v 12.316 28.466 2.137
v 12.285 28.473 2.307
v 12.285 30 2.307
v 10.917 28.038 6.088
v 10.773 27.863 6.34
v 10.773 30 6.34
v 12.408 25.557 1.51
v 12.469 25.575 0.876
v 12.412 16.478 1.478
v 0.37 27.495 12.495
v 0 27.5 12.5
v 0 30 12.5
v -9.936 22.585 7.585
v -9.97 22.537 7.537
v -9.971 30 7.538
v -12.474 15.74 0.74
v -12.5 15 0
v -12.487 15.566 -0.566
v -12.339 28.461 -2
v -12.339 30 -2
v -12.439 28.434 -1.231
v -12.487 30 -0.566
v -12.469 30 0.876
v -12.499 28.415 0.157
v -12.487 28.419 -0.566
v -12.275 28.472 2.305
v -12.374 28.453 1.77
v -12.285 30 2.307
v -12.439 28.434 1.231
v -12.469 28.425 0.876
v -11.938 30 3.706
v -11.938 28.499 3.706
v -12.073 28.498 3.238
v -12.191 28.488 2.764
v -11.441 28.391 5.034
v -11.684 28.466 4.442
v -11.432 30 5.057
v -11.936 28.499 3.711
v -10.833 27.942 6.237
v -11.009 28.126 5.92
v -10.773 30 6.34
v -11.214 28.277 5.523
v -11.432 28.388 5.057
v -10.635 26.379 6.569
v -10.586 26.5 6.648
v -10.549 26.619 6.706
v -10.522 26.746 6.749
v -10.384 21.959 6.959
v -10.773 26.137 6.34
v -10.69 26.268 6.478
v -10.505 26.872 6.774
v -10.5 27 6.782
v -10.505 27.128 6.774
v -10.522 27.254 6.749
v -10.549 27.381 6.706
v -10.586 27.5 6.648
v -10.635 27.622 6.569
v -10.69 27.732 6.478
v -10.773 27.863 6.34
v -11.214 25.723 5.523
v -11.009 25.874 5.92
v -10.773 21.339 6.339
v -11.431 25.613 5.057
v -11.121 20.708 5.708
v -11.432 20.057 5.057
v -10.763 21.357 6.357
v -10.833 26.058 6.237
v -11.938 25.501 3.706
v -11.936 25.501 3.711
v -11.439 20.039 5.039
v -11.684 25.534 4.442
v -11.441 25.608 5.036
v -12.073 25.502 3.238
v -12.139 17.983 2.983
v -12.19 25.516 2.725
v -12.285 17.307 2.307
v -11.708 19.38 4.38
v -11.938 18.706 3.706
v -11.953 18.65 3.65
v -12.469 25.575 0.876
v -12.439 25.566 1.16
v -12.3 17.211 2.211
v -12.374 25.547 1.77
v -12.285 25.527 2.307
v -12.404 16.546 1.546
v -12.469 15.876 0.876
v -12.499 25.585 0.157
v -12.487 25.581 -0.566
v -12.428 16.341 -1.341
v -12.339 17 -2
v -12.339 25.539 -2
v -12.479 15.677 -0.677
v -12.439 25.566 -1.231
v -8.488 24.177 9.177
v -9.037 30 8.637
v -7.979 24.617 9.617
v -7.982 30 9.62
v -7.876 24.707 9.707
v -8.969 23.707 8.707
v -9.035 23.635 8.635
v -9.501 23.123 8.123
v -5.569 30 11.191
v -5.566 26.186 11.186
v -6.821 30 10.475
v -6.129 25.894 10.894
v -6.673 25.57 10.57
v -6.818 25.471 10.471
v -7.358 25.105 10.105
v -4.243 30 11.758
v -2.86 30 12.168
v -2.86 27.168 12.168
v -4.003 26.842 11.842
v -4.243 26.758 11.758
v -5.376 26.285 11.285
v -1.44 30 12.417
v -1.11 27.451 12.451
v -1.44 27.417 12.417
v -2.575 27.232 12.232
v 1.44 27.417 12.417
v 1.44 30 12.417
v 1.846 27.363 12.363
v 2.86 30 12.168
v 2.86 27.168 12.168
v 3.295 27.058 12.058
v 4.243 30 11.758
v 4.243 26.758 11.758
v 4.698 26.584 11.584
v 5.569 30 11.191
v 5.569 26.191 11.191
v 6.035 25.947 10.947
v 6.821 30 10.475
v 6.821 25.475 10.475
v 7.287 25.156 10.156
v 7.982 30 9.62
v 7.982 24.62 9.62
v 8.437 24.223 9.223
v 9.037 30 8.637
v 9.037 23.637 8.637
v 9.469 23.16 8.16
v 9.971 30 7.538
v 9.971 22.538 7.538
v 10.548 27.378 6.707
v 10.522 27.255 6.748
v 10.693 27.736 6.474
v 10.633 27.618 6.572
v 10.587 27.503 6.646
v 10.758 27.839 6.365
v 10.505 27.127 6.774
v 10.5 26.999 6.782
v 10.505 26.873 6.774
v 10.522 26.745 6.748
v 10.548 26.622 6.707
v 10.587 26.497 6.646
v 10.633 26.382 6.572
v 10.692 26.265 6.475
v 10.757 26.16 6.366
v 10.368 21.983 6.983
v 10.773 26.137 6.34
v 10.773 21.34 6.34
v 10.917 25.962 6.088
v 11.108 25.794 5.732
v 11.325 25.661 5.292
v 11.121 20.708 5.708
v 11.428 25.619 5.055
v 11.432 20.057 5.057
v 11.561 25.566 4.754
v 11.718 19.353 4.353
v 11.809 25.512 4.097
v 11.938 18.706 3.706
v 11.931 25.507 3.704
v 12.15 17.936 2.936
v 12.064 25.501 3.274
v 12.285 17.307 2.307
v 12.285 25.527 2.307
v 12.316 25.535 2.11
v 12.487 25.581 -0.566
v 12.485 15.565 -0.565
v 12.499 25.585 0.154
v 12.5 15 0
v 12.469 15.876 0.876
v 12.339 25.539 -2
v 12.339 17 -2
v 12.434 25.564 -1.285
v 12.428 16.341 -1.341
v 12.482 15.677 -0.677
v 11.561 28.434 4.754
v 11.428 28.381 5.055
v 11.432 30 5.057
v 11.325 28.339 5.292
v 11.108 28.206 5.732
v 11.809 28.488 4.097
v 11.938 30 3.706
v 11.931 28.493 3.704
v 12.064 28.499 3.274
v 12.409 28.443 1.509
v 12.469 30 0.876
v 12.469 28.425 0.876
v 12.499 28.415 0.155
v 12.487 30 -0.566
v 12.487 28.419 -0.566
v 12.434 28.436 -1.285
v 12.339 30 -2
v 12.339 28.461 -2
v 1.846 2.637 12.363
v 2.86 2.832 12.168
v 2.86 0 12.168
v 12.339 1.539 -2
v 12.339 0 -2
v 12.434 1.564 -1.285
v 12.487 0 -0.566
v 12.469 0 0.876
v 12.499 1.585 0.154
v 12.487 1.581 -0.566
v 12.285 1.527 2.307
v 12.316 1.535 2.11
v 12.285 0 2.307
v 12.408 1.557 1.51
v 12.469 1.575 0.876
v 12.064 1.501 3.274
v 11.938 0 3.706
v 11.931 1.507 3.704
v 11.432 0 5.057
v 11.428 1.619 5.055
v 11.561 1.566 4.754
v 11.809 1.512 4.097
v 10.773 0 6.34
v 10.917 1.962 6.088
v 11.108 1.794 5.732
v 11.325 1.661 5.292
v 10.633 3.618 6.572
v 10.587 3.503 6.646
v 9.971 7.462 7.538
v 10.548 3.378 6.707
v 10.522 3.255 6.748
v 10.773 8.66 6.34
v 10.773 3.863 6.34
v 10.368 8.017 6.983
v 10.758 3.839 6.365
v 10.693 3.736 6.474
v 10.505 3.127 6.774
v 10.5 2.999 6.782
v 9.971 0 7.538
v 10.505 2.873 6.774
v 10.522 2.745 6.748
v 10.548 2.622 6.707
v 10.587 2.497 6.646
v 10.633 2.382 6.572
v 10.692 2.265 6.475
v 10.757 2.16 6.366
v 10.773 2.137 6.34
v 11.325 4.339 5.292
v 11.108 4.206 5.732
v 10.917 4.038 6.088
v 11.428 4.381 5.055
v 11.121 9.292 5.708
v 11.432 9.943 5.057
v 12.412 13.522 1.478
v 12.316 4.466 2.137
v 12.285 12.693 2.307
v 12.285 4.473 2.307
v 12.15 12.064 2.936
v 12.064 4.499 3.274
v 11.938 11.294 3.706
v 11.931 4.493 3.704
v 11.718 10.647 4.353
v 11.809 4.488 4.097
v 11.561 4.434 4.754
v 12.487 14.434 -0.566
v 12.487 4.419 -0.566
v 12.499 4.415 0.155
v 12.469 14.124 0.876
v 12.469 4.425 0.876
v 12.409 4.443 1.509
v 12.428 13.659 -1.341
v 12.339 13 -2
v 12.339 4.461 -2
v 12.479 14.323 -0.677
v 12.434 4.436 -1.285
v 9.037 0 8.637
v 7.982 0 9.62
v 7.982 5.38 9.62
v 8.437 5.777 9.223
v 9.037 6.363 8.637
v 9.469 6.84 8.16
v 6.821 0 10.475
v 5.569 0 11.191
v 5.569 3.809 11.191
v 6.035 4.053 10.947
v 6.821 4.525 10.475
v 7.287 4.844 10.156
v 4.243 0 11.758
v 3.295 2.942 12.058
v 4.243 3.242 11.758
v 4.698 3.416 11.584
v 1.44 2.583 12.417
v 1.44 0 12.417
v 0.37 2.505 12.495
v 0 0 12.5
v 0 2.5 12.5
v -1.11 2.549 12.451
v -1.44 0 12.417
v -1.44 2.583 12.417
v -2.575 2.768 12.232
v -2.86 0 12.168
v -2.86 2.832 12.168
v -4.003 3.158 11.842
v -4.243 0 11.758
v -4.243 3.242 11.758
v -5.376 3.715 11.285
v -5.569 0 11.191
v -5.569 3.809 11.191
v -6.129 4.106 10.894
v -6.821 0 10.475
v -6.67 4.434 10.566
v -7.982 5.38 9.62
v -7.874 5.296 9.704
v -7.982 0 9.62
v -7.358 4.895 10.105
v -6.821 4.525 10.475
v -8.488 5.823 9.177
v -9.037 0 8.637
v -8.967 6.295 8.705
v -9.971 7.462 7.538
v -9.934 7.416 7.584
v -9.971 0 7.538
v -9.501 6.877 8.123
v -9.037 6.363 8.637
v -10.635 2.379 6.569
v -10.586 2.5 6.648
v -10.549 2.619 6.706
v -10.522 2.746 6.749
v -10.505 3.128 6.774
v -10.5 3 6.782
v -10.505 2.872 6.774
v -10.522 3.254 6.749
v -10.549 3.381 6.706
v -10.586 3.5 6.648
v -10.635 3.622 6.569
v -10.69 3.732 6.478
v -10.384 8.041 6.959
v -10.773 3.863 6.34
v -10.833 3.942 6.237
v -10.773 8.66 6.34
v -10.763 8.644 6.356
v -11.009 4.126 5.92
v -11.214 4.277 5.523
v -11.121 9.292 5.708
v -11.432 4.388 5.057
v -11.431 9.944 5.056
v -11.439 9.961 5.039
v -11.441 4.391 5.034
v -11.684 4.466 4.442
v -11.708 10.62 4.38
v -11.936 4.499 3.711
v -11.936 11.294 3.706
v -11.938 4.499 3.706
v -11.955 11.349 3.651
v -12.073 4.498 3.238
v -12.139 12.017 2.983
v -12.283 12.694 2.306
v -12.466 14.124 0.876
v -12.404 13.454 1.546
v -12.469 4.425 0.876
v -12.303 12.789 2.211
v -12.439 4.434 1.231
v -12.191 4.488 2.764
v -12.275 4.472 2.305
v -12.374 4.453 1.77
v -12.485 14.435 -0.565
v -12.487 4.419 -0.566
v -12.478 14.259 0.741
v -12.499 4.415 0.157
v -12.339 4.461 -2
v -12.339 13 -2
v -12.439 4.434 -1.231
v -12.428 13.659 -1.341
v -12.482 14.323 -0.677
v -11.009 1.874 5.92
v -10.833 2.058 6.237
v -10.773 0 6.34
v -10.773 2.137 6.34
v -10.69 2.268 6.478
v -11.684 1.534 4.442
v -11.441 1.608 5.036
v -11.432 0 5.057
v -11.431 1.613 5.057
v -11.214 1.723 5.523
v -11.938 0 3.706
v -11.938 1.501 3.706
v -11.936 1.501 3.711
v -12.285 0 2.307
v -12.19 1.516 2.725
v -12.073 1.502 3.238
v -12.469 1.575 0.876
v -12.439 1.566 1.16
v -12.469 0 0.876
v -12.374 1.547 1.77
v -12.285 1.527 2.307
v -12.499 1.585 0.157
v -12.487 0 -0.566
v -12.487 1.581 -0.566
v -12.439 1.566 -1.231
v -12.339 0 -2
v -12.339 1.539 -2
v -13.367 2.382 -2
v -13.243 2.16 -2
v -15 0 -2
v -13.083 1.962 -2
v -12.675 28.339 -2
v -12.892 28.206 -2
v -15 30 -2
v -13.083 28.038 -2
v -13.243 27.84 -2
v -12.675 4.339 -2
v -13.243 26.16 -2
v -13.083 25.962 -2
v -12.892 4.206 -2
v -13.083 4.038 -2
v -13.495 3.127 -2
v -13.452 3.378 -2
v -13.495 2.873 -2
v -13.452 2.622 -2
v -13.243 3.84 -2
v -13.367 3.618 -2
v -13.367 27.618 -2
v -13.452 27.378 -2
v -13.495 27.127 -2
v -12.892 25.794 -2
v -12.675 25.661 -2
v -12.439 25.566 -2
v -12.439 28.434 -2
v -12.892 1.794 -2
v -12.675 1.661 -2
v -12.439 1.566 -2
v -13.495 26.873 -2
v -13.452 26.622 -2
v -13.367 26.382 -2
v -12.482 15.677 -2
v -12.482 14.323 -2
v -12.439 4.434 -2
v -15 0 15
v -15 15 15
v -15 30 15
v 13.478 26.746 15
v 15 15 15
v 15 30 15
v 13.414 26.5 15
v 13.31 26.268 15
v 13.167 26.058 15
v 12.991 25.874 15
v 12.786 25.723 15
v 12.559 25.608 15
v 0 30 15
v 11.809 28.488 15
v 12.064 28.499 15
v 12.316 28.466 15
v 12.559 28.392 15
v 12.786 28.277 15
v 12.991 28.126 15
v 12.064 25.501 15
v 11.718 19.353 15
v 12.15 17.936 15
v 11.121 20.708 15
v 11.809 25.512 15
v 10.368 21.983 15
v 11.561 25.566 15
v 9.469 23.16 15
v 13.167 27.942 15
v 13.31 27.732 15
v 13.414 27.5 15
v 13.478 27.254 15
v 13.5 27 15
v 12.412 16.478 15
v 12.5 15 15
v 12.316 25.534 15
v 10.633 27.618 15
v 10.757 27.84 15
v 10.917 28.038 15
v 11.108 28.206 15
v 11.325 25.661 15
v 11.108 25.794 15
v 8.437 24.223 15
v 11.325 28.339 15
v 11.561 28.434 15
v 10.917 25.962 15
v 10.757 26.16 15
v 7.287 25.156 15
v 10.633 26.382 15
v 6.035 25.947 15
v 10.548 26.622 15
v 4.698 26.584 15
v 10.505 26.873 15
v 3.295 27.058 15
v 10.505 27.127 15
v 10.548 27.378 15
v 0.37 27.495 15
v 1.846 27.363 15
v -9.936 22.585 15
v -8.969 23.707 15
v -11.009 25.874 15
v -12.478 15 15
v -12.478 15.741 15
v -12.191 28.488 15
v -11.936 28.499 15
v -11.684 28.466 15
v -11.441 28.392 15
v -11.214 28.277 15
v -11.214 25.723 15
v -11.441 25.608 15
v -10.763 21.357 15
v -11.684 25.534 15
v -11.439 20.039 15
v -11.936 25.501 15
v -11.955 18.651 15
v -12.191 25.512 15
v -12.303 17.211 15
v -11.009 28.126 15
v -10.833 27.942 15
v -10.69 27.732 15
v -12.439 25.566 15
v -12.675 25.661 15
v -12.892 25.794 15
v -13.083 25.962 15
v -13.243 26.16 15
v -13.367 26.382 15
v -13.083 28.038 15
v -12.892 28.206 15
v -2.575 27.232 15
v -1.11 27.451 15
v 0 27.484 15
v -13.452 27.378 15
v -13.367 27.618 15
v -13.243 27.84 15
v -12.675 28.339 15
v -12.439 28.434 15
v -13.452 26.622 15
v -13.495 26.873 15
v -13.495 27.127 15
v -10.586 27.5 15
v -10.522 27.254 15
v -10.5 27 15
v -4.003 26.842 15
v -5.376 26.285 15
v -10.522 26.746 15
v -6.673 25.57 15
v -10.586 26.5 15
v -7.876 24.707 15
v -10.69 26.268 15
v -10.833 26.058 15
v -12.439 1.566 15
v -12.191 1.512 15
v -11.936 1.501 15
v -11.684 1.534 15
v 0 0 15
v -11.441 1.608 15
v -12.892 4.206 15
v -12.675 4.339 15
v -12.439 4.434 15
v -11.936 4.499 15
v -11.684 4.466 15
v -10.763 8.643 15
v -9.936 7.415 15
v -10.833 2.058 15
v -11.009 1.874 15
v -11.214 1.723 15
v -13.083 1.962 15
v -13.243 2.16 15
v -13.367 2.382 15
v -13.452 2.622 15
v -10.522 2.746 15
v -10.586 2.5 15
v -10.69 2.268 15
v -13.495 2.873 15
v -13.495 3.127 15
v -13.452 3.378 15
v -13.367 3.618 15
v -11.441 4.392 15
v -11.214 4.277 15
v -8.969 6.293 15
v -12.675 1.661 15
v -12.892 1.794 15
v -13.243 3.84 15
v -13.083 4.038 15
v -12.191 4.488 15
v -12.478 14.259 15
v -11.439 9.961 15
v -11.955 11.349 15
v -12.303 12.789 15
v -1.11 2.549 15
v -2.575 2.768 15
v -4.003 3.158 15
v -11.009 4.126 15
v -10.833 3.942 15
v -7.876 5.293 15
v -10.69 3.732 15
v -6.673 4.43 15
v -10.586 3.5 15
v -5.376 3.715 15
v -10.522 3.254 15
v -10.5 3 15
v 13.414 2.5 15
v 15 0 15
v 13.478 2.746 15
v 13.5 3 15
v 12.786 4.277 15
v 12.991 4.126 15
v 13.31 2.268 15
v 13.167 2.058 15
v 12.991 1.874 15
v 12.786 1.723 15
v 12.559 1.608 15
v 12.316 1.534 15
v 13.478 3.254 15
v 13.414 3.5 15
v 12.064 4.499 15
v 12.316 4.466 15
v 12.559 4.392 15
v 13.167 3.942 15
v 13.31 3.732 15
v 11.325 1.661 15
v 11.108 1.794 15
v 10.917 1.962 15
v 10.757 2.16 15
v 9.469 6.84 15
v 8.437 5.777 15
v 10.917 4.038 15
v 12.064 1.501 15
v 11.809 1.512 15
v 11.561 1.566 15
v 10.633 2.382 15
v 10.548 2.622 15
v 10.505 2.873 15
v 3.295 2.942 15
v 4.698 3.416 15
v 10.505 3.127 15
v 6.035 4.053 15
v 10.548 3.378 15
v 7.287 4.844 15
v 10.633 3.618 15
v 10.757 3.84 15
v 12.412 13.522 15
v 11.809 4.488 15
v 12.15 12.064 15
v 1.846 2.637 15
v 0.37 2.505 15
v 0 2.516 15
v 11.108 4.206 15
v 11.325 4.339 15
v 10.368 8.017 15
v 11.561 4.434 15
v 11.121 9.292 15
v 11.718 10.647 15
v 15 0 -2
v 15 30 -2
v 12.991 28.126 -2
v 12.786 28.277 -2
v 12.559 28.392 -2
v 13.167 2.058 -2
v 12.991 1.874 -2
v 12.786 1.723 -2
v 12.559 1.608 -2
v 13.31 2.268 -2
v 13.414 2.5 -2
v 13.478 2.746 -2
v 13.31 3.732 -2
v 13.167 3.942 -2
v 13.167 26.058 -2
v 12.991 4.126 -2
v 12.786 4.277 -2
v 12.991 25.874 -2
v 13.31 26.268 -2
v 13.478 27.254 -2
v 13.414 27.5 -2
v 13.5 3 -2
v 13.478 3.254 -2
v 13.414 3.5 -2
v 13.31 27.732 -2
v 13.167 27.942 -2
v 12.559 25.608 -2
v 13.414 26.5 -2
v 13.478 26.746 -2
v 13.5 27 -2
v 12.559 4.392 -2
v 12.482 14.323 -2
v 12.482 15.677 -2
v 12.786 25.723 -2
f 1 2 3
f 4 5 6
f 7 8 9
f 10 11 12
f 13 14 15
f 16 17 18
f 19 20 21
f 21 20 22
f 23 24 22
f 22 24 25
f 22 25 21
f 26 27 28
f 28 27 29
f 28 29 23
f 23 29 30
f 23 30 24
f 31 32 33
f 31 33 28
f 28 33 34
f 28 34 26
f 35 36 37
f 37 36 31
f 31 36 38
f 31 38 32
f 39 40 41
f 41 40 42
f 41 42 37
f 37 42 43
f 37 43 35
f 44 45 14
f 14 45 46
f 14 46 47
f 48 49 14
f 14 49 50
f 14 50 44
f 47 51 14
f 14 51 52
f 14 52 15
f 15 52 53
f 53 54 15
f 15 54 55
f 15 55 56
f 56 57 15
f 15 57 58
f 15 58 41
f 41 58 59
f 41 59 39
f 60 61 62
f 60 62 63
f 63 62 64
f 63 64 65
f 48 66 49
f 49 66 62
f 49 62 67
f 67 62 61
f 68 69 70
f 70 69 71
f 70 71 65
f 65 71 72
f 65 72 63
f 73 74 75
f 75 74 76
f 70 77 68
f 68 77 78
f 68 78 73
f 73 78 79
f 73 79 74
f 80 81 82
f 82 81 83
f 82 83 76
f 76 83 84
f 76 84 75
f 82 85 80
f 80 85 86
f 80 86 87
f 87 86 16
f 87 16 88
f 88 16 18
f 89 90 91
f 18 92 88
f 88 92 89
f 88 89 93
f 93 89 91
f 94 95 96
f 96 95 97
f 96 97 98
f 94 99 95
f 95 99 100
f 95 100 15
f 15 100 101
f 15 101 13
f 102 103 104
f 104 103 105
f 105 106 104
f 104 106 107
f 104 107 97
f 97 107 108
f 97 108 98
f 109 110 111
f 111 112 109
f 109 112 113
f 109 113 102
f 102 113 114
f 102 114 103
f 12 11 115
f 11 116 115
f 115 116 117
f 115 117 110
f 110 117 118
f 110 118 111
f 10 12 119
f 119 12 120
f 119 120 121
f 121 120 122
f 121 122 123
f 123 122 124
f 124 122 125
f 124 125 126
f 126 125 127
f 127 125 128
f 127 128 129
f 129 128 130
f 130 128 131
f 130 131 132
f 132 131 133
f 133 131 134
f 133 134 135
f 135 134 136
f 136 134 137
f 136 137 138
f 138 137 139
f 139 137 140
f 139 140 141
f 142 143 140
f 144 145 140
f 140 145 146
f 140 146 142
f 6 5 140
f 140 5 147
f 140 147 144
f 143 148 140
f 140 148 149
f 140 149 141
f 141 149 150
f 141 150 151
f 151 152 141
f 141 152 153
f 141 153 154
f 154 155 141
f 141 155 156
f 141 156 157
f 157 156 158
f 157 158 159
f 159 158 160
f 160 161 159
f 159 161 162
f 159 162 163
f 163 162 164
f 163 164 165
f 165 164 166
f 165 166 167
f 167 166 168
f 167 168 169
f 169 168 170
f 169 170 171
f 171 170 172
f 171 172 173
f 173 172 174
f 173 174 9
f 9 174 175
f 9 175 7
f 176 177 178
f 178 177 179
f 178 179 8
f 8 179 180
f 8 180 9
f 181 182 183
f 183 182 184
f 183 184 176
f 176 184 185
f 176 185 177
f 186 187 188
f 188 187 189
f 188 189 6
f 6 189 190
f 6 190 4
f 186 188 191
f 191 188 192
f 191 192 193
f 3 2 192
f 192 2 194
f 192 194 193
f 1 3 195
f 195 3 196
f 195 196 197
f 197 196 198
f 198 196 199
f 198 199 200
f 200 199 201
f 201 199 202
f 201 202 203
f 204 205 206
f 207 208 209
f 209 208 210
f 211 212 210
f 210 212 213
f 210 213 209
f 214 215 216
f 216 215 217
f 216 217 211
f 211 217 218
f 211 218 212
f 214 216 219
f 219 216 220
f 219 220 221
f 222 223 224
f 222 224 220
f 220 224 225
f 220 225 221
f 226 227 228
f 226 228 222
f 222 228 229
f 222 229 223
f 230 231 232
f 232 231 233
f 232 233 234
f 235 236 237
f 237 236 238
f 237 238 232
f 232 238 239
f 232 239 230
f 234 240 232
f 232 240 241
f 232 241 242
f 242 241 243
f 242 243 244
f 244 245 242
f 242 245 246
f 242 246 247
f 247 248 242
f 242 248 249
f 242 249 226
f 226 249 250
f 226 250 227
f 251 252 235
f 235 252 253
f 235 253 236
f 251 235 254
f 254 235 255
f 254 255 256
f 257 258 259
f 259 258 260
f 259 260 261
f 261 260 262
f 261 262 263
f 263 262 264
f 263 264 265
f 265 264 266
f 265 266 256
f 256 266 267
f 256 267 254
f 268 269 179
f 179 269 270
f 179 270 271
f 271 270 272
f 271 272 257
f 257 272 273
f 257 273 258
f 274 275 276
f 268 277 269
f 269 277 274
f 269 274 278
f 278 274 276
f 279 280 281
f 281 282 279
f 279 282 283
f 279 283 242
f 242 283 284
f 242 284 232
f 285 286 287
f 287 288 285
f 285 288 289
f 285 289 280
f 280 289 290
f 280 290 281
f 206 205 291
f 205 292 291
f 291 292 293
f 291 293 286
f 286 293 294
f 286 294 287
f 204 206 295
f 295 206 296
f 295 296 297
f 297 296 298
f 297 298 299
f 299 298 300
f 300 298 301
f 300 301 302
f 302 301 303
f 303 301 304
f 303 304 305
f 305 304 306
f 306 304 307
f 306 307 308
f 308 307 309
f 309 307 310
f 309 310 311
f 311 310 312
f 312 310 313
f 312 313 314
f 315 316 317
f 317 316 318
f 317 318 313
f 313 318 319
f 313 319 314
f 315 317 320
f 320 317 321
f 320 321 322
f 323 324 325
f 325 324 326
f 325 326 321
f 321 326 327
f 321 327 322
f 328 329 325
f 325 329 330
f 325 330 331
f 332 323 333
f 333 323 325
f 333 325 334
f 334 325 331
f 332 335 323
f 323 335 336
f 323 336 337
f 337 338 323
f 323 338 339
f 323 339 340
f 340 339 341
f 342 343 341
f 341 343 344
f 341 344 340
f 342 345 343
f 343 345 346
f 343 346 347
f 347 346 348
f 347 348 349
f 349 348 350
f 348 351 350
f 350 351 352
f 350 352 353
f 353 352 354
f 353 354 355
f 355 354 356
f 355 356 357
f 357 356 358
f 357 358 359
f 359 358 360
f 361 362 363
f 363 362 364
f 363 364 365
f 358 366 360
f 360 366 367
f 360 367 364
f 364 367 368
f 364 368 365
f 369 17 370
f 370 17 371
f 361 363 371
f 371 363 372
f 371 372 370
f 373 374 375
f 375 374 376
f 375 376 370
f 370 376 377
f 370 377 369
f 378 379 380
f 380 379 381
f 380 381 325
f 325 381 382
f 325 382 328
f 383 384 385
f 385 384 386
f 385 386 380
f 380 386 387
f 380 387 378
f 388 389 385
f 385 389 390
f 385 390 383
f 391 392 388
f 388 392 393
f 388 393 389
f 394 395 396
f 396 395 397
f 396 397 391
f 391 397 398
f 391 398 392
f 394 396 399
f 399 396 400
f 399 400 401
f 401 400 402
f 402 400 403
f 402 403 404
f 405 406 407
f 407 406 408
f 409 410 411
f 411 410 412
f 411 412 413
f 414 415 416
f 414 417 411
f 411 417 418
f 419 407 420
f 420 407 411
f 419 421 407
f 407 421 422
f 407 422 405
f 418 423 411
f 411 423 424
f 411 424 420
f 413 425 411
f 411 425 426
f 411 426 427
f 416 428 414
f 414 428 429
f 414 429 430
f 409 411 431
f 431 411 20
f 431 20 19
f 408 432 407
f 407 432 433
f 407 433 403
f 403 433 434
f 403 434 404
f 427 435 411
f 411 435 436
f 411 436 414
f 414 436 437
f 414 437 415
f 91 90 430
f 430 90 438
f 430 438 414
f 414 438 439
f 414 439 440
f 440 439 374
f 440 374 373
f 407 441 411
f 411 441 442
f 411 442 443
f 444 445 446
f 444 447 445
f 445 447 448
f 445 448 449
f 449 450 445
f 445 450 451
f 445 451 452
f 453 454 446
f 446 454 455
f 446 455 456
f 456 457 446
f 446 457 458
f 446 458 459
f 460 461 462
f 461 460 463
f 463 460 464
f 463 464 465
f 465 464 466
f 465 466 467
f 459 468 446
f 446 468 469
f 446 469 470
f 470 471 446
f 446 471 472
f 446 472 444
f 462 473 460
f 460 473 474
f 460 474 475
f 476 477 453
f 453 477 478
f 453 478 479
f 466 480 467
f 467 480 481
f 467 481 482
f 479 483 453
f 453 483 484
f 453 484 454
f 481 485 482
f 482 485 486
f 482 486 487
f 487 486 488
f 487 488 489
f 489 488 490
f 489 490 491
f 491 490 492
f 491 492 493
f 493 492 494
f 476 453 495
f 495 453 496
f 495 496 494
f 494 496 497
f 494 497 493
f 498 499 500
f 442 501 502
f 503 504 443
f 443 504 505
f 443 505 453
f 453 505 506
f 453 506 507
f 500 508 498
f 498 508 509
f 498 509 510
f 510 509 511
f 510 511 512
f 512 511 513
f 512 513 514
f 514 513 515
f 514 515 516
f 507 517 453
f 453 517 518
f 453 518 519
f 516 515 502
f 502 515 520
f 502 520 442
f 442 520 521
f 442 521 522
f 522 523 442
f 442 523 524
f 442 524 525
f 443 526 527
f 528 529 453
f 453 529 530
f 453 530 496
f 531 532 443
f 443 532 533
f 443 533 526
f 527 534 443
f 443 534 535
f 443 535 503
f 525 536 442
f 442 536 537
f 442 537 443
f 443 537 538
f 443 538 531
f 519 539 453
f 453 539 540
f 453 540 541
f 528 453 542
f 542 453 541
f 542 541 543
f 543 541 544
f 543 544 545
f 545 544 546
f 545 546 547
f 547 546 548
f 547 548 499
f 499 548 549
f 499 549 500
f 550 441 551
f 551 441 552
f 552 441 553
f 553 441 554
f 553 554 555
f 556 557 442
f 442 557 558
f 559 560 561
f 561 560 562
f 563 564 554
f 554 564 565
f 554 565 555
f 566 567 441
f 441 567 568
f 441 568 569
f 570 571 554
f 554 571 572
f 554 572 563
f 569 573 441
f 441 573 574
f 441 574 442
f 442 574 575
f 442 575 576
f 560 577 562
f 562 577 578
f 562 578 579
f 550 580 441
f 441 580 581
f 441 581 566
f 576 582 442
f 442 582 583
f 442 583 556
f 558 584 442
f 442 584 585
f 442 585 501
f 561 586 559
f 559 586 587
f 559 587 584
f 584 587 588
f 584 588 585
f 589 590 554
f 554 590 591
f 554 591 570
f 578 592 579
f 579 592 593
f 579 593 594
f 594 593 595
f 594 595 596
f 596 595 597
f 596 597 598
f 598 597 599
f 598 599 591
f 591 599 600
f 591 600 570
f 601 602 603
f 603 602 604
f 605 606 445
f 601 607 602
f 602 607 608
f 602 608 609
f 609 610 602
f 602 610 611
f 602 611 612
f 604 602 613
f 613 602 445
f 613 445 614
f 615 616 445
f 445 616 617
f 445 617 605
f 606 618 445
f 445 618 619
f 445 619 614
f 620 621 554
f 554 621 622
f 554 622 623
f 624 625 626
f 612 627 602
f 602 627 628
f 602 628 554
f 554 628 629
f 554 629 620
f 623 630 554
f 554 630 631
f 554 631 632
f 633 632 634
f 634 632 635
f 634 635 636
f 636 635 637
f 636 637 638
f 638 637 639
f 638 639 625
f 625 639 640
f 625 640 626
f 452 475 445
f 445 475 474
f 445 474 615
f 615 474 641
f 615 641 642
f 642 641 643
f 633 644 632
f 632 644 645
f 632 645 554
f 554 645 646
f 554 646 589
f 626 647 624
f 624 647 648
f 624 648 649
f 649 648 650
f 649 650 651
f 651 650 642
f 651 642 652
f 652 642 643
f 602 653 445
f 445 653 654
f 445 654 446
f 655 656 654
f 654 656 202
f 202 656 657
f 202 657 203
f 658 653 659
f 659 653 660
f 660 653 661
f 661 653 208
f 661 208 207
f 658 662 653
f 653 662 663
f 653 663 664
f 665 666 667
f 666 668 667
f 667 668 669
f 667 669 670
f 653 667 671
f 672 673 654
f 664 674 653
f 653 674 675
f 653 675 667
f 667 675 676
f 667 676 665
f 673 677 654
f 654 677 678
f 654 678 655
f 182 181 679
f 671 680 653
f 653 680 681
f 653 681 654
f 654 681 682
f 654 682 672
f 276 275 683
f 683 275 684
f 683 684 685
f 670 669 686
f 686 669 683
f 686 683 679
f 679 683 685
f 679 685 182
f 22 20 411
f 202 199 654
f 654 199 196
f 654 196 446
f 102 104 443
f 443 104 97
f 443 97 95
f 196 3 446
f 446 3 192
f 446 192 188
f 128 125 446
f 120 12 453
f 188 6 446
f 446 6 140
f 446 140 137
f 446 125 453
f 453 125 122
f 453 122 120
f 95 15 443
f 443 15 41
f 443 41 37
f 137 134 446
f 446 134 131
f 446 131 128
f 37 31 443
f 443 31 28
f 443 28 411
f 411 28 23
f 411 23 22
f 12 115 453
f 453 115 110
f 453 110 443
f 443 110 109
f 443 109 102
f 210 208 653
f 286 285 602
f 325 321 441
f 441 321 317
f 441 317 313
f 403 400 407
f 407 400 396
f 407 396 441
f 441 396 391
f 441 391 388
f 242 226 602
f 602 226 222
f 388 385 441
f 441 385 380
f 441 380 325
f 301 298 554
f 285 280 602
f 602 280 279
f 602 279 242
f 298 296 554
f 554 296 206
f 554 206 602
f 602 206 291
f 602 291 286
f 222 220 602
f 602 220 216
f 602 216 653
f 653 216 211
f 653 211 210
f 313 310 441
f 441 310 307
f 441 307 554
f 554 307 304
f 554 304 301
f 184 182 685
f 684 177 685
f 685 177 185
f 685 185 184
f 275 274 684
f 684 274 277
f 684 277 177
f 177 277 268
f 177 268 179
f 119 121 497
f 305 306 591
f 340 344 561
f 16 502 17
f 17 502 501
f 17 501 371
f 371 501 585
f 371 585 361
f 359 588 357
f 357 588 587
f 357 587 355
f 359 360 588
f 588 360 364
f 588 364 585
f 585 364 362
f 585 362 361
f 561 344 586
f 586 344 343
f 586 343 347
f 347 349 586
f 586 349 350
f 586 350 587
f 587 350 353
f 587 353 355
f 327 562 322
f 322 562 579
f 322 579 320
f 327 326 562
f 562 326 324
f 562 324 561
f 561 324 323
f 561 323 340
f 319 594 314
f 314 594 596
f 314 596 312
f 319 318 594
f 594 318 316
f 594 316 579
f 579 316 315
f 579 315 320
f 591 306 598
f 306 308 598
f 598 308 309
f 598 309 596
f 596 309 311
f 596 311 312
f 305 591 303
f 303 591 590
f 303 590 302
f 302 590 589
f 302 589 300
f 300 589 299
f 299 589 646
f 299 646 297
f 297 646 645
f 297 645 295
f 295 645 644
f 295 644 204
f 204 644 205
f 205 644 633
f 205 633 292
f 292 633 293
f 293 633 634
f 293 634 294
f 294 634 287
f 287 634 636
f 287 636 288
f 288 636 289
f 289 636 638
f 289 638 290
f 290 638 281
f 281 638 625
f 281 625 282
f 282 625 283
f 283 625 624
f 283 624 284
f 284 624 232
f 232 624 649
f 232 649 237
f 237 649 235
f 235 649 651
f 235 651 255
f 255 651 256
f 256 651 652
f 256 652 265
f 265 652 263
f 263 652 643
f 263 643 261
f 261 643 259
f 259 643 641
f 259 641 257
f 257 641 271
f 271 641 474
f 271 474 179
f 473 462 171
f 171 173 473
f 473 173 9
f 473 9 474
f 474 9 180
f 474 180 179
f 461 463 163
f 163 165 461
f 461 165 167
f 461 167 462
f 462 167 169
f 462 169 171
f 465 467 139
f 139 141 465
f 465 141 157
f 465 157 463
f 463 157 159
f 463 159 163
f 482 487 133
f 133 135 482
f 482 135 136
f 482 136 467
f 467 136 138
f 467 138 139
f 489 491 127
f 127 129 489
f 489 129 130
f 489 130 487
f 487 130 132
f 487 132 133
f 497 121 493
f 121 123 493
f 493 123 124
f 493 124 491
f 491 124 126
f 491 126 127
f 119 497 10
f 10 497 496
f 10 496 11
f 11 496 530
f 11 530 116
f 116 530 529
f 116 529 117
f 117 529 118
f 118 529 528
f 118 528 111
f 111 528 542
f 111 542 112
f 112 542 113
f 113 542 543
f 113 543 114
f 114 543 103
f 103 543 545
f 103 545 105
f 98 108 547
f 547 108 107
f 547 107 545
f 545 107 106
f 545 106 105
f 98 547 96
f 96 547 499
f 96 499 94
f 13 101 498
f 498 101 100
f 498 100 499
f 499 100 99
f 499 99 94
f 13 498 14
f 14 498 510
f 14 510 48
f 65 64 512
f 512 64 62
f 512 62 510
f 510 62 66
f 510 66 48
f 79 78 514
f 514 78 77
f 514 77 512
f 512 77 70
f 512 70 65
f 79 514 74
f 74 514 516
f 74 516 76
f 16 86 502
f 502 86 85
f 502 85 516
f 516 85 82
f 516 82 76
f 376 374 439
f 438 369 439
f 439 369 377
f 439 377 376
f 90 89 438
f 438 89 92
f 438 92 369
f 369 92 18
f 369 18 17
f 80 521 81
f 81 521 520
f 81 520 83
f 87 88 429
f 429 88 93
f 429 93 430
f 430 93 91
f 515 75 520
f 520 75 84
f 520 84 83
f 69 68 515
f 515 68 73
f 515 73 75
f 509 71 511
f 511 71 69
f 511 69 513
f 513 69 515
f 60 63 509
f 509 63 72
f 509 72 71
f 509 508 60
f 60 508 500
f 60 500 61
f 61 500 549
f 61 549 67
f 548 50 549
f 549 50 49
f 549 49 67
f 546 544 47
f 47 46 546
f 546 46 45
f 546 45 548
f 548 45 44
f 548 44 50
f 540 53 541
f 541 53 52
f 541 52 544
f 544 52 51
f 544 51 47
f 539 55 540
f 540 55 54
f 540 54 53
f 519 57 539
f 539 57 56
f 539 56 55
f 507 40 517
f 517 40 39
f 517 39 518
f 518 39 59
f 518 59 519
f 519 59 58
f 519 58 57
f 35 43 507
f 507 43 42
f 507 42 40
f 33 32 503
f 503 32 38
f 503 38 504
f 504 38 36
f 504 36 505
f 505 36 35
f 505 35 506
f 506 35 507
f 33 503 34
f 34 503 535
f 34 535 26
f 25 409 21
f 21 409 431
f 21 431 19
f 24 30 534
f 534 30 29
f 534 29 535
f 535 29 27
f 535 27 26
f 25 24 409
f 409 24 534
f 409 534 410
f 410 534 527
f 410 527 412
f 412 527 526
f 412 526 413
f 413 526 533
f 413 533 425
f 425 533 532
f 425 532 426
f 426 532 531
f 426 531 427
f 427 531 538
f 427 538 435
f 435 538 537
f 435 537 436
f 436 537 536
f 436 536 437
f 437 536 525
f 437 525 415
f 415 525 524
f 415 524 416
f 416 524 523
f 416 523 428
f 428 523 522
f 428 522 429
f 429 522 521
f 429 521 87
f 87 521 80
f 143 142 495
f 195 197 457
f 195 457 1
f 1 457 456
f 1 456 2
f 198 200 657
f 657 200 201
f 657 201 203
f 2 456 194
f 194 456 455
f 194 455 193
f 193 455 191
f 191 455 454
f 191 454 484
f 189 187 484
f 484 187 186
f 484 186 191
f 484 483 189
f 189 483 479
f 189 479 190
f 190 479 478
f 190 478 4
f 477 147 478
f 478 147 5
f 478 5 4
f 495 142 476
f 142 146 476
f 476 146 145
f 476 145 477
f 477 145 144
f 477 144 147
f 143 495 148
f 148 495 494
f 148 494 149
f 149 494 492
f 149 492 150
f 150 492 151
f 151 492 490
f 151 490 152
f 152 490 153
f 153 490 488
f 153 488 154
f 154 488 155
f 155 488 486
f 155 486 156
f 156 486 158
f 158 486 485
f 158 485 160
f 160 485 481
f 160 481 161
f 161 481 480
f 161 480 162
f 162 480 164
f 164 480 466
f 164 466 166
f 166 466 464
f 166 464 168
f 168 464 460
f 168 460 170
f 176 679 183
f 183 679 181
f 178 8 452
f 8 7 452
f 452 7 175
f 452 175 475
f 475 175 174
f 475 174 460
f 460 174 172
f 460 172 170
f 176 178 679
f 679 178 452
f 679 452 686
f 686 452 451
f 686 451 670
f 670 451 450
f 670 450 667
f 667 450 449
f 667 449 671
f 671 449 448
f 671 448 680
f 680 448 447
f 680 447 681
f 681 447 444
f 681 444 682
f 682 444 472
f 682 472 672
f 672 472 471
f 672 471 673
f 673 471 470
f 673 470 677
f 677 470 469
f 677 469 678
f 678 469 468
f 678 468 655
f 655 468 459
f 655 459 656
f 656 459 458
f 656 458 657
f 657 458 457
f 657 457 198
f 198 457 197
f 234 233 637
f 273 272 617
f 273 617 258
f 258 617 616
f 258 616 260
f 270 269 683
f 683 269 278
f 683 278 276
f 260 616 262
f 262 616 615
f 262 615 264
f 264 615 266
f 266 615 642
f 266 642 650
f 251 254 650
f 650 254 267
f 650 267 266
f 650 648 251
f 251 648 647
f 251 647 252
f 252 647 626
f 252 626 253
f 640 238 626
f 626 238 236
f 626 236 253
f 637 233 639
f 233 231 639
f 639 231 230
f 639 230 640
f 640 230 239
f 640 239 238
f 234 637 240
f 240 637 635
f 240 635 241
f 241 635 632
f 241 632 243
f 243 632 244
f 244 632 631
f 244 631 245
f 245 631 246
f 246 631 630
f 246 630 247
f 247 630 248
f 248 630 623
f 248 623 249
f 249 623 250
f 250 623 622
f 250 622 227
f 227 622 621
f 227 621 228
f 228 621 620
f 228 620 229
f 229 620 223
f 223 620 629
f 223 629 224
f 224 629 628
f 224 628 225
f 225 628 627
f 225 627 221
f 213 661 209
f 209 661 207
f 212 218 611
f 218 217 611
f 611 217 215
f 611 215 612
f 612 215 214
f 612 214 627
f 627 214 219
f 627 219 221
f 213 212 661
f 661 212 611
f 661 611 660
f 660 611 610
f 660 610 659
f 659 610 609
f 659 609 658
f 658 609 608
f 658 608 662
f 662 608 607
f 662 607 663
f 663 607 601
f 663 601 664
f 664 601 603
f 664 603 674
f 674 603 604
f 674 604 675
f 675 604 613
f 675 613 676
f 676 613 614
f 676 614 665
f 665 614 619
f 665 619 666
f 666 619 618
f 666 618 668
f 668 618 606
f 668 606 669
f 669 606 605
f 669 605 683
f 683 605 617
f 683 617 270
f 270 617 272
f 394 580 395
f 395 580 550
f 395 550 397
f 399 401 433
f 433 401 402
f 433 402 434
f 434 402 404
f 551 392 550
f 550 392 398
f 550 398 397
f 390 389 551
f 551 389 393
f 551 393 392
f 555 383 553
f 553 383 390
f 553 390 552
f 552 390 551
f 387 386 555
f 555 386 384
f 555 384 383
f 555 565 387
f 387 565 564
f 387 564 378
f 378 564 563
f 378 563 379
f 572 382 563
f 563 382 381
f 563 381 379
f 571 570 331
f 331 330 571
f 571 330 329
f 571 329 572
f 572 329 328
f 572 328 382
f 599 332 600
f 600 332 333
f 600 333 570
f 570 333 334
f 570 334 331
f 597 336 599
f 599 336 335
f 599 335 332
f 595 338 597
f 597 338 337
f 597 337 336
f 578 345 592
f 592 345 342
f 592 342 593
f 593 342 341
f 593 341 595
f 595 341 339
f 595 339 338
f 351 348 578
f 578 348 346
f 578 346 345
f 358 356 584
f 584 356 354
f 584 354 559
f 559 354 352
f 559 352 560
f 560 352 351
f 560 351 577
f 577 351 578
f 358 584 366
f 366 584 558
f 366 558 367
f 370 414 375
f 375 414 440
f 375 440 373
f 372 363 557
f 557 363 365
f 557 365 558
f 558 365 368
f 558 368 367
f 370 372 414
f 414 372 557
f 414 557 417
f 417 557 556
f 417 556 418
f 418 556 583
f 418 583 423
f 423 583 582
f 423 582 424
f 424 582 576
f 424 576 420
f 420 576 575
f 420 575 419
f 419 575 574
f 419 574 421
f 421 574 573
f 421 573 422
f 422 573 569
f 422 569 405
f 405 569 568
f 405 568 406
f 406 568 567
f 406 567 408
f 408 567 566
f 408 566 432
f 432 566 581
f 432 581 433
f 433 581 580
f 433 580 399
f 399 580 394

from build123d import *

# Parameters (mm, degrees)
P_IDAT_VYSUNUT_M1_DEPTH  = 30
SKICA2_R                 = 12.5
ODEBRAT_VYSUNUT_M1_DEPTH = 30
SKICA3_R                 = 1.5
ODEBRAT_VYSUNUT_M2_DEPTH = 30


with BuildPart() as part:
    # Skica1 → Přidat vysunutím1 (new body)
    with BuildSketch(Plane(origin=(0, 0, 0), x_dir=(1, 0, 0), z_dir=(0, 1, 0))):
        with BuildLine():
            Line((-15, 2), (-15, 0))
            Line((-15, 0), (-15, -15))
            Line((-15, -15), (15, -15))
            Line((15, -15), (15, 0))
            Line((15, 0), (15, 2))
            Line((15, 2), (12.338962679, 2))
            ThreePointArc((12.338962679, 2), (12.459675628, 1.00323639), (12.5, 0))
            ThreePointArc((12.5, 0), (-1.00323639, -12.459675628), (-12.338962679, 2))
            Line((-12.338962679, 2), (-15, 2))
        make_face()
    extrude(amount=P_IDAT_VYSUNUT_M1_DEPTH)

    # Skica2 → Odebrat vysunutím1 (cut)
    with BuildSketch(Plane.XY.offset(15)):
        with Locations((0, 15)):
            Circle(SKICA2_R)
    extrude(amount=-ODEBRAT_VYSUNUT_M1_DEPTH, mode=Mode.SUBTRACT)

    # Skica3 → Odebrat vysunutím2 (cut)
    with BuildSketch(Plane.XY.offset(15)):
        with Locations((-12, 27)):
            Circle(SKICA3_R)
        with Locations((12, 27)):
            Circle(SKICA3_R)
        with Locations((12, 3)):
            Circle(SKICA3_R)
        with Locations((-12, 3)):
            Circle(SKICA3_R)
    extrude(amount=-ODEBRAT_VYSUNUT_M2_DEPTH, mode=Mode.SUBTRACT)


solid = part.part
